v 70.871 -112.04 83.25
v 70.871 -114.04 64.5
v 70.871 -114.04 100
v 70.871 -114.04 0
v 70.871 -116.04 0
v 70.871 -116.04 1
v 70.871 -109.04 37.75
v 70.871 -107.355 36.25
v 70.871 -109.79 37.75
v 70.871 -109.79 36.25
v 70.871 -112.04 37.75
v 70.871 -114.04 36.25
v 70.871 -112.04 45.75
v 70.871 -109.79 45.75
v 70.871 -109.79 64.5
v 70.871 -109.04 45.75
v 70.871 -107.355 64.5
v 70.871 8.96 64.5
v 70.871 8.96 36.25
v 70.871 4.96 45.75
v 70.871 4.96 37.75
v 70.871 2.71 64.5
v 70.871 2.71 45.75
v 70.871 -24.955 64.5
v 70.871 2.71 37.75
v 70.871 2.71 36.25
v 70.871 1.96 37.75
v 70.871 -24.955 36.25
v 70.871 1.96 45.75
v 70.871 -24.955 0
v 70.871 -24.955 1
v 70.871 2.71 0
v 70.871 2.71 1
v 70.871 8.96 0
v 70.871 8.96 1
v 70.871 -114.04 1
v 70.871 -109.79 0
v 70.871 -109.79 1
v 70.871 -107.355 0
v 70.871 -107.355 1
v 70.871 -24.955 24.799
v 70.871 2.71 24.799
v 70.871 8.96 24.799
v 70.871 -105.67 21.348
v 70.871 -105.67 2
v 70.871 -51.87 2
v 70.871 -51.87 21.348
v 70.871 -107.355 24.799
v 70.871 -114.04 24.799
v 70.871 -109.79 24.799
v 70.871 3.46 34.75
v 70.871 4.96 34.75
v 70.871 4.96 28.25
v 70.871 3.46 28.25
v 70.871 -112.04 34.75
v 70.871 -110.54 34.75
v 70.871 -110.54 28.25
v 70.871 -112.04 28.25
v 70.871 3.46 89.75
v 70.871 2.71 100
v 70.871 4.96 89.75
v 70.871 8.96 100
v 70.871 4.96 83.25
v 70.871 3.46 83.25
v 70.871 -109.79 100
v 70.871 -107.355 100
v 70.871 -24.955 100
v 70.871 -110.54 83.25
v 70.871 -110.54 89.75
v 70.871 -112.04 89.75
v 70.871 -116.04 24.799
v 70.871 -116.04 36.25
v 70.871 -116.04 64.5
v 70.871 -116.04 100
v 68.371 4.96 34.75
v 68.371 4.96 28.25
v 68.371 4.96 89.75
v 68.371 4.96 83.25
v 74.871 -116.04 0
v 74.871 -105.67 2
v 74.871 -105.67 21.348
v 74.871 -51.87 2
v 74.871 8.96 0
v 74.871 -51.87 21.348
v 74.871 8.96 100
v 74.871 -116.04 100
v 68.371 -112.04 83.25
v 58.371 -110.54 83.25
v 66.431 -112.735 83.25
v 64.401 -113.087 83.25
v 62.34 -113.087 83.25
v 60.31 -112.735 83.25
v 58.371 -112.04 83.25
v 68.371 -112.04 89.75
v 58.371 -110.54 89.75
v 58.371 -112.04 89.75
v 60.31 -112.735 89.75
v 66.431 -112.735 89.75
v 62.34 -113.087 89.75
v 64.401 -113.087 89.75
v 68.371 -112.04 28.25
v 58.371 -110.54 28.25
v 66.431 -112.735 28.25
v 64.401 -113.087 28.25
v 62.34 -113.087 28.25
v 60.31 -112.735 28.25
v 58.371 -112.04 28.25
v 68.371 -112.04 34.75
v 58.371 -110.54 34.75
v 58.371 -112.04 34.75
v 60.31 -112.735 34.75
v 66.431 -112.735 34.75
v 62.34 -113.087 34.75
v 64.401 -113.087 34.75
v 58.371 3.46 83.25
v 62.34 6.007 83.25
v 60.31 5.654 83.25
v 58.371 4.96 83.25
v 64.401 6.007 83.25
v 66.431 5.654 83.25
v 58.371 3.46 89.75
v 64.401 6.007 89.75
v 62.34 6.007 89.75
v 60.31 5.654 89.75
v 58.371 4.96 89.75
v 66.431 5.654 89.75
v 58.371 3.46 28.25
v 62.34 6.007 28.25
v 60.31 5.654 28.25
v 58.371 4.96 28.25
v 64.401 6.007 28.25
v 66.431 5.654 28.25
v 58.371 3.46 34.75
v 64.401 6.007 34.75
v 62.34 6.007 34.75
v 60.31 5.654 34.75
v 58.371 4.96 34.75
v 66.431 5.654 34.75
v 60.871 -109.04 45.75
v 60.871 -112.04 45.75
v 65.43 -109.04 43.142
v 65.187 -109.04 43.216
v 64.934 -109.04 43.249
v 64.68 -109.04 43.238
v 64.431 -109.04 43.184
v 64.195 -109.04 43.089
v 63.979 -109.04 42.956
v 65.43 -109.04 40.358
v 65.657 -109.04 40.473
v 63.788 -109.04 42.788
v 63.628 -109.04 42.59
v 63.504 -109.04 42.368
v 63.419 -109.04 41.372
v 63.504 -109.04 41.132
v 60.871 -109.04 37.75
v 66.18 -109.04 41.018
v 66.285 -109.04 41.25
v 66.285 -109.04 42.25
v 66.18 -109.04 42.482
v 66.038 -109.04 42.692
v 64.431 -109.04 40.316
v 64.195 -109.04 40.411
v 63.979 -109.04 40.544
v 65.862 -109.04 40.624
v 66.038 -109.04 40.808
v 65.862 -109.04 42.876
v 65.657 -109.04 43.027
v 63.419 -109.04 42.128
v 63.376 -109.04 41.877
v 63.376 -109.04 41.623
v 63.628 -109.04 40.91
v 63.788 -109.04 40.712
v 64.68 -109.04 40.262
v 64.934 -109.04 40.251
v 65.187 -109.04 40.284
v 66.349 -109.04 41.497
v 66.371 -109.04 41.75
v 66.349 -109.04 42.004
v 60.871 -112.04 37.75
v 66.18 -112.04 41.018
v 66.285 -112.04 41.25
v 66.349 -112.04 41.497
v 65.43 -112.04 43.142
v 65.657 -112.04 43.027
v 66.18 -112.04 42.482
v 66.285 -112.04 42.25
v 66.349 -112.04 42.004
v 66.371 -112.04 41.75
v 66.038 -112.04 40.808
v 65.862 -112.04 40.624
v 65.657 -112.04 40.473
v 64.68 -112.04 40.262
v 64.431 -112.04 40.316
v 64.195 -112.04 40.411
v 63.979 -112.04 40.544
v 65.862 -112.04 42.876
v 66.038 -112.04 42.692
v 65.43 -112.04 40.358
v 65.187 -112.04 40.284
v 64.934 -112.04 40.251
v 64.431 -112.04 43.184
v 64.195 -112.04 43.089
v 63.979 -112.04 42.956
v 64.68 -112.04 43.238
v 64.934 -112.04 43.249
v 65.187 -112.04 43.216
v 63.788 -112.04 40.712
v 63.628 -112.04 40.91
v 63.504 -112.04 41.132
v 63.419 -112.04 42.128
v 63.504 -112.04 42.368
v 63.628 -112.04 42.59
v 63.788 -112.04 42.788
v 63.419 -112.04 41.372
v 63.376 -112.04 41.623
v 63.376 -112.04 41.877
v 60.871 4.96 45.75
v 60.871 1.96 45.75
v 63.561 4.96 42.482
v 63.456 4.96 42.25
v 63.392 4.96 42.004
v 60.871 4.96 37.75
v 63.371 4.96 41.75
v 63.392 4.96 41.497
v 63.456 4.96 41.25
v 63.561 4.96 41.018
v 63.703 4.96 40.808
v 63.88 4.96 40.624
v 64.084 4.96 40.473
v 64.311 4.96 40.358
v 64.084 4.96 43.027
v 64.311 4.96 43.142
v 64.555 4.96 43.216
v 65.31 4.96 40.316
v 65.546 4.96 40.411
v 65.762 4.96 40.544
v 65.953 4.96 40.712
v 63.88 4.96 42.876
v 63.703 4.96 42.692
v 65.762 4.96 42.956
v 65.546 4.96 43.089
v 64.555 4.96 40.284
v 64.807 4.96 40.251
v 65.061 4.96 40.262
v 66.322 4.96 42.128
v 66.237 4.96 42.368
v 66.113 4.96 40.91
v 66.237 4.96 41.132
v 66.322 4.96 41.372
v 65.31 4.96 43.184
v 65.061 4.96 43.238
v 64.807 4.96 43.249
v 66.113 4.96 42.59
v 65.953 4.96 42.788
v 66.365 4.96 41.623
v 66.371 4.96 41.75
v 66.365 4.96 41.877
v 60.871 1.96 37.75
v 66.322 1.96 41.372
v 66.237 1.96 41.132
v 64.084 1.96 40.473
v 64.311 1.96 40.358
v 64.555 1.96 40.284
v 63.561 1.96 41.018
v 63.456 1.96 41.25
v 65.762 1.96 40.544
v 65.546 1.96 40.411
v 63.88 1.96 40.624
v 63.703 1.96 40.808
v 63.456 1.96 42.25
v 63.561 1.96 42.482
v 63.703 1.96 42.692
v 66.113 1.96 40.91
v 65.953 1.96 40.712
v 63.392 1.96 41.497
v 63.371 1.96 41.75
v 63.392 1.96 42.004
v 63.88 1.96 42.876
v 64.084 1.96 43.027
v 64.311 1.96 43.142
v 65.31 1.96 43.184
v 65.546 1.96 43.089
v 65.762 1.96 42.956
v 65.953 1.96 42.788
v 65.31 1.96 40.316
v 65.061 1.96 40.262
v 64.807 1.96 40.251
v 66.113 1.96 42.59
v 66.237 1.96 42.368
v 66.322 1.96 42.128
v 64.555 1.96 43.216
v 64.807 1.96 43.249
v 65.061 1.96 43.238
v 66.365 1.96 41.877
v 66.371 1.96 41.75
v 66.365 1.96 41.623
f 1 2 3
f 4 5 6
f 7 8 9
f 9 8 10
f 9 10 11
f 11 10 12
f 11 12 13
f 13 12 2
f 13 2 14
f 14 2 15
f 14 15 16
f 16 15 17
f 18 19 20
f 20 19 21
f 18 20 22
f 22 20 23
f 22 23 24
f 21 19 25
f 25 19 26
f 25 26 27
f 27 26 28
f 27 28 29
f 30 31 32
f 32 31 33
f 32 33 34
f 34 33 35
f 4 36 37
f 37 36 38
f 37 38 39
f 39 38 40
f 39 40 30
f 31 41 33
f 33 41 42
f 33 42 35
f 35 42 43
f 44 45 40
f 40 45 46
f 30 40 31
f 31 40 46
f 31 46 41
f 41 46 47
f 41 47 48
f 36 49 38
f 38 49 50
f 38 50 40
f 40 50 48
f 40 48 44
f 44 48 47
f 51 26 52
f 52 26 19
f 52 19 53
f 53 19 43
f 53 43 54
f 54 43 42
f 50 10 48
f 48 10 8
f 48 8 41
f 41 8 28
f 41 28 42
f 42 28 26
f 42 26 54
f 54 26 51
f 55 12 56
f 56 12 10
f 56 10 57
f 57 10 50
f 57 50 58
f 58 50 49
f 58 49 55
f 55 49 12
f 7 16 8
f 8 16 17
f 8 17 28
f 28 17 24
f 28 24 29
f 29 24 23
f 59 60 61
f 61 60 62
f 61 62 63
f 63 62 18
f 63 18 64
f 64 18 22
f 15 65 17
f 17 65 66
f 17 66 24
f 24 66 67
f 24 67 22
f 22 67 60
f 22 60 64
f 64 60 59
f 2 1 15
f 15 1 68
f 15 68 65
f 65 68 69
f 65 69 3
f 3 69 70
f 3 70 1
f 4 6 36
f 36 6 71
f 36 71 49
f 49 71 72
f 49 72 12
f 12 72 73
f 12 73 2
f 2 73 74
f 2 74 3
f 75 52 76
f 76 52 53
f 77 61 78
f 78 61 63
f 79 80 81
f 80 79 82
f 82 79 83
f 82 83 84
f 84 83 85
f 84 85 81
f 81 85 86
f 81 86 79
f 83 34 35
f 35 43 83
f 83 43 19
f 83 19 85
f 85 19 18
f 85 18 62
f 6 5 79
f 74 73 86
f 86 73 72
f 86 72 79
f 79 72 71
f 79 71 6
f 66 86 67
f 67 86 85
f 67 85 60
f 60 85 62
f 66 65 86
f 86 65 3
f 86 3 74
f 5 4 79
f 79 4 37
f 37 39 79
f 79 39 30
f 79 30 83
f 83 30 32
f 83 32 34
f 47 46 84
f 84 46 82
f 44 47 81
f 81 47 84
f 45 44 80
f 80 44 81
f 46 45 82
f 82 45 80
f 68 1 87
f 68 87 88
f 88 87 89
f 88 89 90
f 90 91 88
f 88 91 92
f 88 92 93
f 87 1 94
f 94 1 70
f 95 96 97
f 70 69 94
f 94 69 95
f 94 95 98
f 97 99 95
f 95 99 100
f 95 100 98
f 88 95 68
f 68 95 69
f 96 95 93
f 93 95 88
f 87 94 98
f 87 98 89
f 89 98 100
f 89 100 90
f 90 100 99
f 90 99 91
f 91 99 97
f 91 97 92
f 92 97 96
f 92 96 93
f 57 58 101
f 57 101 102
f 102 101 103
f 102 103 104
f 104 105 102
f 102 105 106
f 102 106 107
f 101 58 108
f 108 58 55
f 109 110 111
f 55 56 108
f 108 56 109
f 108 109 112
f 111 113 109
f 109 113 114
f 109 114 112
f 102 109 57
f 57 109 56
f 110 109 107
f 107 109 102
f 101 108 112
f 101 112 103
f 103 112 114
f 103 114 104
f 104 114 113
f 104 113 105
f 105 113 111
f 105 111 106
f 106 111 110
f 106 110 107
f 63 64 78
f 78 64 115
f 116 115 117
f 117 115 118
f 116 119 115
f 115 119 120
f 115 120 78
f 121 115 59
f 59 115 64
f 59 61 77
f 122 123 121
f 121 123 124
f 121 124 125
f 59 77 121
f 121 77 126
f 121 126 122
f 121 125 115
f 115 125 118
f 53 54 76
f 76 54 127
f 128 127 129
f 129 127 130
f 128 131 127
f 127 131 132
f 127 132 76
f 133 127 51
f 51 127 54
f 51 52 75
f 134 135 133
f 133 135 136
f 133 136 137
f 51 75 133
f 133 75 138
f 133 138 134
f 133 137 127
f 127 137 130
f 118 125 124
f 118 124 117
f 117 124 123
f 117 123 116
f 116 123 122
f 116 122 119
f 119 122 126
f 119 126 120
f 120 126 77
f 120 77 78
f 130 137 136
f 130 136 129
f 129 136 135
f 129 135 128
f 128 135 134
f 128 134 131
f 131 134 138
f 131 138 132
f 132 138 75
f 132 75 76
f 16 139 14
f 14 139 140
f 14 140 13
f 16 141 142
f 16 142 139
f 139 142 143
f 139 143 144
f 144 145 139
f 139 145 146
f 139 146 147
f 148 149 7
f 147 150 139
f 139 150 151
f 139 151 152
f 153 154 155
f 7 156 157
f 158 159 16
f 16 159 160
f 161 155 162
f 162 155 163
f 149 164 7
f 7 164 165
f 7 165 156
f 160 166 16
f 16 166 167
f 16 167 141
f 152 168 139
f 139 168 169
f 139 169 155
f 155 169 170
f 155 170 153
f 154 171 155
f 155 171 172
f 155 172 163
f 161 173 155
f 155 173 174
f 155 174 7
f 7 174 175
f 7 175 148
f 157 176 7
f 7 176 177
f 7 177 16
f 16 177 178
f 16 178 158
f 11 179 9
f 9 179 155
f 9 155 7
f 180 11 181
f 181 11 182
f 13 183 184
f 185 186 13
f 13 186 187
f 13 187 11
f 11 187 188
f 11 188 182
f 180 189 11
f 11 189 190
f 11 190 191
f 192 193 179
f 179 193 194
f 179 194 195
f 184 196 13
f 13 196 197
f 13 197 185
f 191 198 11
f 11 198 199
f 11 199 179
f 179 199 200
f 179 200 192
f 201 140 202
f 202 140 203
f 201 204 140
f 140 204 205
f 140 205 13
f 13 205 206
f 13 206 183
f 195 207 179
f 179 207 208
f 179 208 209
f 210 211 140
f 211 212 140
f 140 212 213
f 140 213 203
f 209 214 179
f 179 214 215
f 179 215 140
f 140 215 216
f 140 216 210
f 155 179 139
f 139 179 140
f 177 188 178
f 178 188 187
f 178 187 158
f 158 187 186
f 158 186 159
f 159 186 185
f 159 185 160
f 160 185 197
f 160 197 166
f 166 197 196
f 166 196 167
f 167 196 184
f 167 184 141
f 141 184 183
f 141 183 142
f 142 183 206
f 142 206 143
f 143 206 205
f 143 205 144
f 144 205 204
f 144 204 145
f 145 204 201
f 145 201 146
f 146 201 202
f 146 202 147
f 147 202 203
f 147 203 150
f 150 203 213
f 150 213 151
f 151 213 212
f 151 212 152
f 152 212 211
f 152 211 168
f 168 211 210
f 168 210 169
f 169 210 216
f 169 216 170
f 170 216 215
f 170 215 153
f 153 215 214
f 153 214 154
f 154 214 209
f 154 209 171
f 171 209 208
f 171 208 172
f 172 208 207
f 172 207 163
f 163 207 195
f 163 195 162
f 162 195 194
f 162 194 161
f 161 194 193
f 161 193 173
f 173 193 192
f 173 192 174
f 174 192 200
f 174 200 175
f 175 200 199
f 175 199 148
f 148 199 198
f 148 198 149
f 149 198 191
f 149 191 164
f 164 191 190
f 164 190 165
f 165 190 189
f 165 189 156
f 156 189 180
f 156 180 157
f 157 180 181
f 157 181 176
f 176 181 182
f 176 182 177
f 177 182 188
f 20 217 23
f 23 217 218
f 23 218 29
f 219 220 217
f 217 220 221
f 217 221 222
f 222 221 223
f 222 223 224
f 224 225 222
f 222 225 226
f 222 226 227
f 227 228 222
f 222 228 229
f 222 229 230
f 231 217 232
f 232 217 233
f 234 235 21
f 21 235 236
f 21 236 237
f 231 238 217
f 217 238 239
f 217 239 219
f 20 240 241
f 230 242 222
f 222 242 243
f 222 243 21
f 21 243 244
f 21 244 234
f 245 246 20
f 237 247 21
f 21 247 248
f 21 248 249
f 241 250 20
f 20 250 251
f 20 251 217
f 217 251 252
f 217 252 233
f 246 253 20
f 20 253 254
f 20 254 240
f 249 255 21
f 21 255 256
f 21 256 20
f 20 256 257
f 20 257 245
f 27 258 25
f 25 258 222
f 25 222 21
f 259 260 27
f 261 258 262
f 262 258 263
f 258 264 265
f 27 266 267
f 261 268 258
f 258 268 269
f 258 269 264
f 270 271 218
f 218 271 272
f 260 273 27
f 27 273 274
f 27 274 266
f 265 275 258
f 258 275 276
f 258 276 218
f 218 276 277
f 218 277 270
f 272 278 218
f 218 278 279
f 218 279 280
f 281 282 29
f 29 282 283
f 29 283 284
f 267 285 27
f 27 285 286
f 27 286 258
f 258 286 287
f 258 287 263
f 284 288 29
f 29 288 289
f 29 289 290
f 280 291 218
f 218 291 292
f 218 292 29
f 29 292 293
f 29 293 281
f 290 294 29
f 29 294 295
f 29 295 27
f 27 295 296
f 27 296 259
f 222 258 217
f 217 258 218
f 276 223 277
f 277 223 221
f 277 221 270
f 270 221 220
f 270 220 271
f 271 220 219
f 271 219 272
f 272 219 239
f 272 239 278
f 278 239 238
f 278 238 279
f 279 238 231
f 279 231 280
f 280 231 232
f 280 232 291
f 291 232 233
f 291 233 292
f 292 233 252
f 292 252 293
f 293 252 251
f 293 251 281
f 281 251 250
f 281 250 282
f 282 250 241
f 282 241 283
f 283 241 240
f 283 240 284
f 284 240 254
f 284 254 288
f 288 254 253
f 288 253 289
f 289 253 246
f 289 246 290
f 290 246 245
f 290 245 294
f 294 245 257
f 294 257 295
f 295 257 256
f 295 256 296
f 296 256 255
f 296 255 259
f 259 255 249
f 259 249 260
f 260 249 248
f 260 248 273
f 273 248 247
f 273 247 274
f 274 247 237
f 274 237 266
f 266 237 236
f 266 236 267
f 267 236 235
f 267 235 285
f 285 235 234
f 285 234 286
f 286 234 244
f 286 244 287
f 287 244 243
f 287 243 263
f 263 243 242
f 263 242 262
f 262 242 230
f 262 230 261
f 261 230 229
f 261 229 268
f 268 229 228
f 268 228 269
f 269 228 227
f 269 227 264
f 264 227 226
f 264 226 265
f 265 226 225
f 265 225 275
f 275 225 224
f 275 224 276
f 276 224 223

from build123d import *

# Parameters (mm, degrees)
SKETCH2_W               = 4
SKETCH2_H               = 125
BOSS_EXTRUDE2_DEPTH     = 100
CUT_EXTRUDE1_REACH      = 132.347
SKETCH6_W               = 53.8
SKETCH6_H               = 19.347608653
SKETCH9_W               = 6.5
SKETCH9_H               = 1.5
BOSS_EXTRUDE4_DEPTH     = 12.5
BOSS_EXTRUDE5_DEPTH     = 6.5
LPATTERN2_COUNT         = 2
LPATTERN2_PITCH         = 55
MIRROR1_COPY_1_SKETCH_W = 6.5
MIRROR1_COPY_1_SKETCH_H = 1.5
MIRROR1_COPY_1_DEPTH    = 12.5
MIRROR1_COPY_2_DEPTH    = 6.5
SKETCH11_W              = 8
SKETCH11_H              = 3
BOSS_EXTRUDE6_DEPTH     = 10
SKETCH12_R              = 1.5
CUT_EXTRUDE2_DEPTH      = 3


with BuildPart() as part:
    # Sketch2 → Boss-Extrude2 (new body)
    with BuildSketch(Plane.XY):
        with Locations((72.870528802, -53.540266993)):
            Rectangle(SKETCH2_W, SKETCH2_H)
    extrude(amount=BOSS_EXTRUDE2_DEPTH)

    # Sketch6 → Cut-Extrude1 (cut, up to next)
    with BuildSketch(Plane(origin=(70.870528802, -52.340678406, -13.65152284), x_dir=(0, 1, 0), z_dir=(-1, 0, 0)), mode=Mode.PRIVATE) as cut_extrude1_sk1:
        with Locations((-26.429588587, -25.325327166)):
            Rectangle(SKETCH6_W, SKETCH6_H)
    cut_extrude1_tool1 = extrude(cut_extrude1_sk1.sketch, amount=-CUT_EXTRUDE1_REACH, mode=Mode.PRIVATE) & part.part
    add(cut_extrude1_tool1.solids().sort_by_distance((70.870529, -78.770267, 11.673804))[0], mode=Mode.SUBTRACT)

    # Sketch9 → Boss-Extrude4 (add)
    with BuildSketch(Plane.ZY.offset(-70.870528802)):
        with Locations((86.5, -111.290266993)):
            Rectangle(SKETCH9_W, SKETCH9_H)
    boss_extrude4 = extrude(amount=BOSS_EXTRUDE4_DEPTH)

    # Sketch10 → Boss-Extrude5 (add)
    with BuildSketch(Plane.XY.offset(89.75)):
        with BuildLine():
            Line((58.370528802, -112.040266993), (68.370528802, -112.040266993))
            ThreePointArc((68.370528802, -112.040266993), (63.370528802, -113.131554878), (58.370528802, -112.040266993))
        make_face()
    boss_extrude5 = extrude(amount=-BOSS_EXTRUDE5_DEPTH)

    # LPattern2: Boss-Extrude4, Boss-Extrude5 ×2
    with Locations(*[(0, 0, -i * LPATTERN2_PITCH) for i in range(1, LPATTERN2_COUNT)]):
        add(boss_extrude4)
        add(boss_extrude5)

    # Mirror1: Boss-Extrude4, Boss-Extrude5 across plane
    add(boss_extrude4.mirror(Plane.ZX.offset(-53.540266993)))
    add(boss_extrude5.mirror(Plane.ZX.offset(-53.540266993)))

    # Mirror1 copy 1 sketch → Mirror1 copy 1 (add)
    with BuildSketch(Plane(origin=(70.870528802, -107.080533985, -55), x_dir=(0, 0, 1), z_dir=(-1, 0, 0))):
        with Locations((86.5, 111.290266993)):
            Rectangle(MIRROR1_COPY_1_SKETCH_W, MIRROR1_COPY_1_SKETCH_H)
    extrude(amount=MIRROR1_COPY_1_DEPTH)

    # Mirror1 copy 2 sketch → Mirror1 copy 2 (add)
    with BuildSketch(Plane(origin=(0, -107.080533985, 34.75), x_dir=(1, 0, 0), z_dir=(0, 0, 1))):
        with BuildLine():
            Line((58.370528802, 112.040266993), (68.370528802, 112.040266993))
            ThreePointArc((68.370528802, 112.040266993), (63.370528802, 113.131554878), (58.370528802, 112.040266993))
        make_face()
    extrude(amount=-MIRROR1_COPY_2_DEPTH)

    # Sketch11 → Boss-Extrude6 (add)
    with BuildSketch(Plane.ZY.offset(-70.870528802)):
        with Locations((41.75, -110.540266993)):
            Rectangle(SKETCH11_W, SKETCH11_H)
    boss_extrude6 = extrude(amount=BOSS_EXTRUDE6_DEPTH)

    # Sketch12 → Cut-Extrude2 (cut)
    with BuildSketch(Plane(origin=(0, -112.040266993, 0), x_dir=(-1, 0, 0), z_dir=(0, -1, 0))):
        with Locations(Location((-64.870528802, -41.75, 0), (0, 0, 180))):
            Circle(SKETCH12_R)
    cut_extrude2 = extrude(amount=-CUT_EXTRUDE2_DEPTH, mode=Mode.SUBTRACT)

    # Mirror2: Boss-Extrude6, Cut-Extrude2 across plane
    add(boss_extrude6.mirror(Plane.ZX.offset(-53.540266993)))
    add(cut_extrude2.mirror(Plane.ZX.offset(-53.540266993)), mode=Mode.SUBTRACT)


solid = part.part
